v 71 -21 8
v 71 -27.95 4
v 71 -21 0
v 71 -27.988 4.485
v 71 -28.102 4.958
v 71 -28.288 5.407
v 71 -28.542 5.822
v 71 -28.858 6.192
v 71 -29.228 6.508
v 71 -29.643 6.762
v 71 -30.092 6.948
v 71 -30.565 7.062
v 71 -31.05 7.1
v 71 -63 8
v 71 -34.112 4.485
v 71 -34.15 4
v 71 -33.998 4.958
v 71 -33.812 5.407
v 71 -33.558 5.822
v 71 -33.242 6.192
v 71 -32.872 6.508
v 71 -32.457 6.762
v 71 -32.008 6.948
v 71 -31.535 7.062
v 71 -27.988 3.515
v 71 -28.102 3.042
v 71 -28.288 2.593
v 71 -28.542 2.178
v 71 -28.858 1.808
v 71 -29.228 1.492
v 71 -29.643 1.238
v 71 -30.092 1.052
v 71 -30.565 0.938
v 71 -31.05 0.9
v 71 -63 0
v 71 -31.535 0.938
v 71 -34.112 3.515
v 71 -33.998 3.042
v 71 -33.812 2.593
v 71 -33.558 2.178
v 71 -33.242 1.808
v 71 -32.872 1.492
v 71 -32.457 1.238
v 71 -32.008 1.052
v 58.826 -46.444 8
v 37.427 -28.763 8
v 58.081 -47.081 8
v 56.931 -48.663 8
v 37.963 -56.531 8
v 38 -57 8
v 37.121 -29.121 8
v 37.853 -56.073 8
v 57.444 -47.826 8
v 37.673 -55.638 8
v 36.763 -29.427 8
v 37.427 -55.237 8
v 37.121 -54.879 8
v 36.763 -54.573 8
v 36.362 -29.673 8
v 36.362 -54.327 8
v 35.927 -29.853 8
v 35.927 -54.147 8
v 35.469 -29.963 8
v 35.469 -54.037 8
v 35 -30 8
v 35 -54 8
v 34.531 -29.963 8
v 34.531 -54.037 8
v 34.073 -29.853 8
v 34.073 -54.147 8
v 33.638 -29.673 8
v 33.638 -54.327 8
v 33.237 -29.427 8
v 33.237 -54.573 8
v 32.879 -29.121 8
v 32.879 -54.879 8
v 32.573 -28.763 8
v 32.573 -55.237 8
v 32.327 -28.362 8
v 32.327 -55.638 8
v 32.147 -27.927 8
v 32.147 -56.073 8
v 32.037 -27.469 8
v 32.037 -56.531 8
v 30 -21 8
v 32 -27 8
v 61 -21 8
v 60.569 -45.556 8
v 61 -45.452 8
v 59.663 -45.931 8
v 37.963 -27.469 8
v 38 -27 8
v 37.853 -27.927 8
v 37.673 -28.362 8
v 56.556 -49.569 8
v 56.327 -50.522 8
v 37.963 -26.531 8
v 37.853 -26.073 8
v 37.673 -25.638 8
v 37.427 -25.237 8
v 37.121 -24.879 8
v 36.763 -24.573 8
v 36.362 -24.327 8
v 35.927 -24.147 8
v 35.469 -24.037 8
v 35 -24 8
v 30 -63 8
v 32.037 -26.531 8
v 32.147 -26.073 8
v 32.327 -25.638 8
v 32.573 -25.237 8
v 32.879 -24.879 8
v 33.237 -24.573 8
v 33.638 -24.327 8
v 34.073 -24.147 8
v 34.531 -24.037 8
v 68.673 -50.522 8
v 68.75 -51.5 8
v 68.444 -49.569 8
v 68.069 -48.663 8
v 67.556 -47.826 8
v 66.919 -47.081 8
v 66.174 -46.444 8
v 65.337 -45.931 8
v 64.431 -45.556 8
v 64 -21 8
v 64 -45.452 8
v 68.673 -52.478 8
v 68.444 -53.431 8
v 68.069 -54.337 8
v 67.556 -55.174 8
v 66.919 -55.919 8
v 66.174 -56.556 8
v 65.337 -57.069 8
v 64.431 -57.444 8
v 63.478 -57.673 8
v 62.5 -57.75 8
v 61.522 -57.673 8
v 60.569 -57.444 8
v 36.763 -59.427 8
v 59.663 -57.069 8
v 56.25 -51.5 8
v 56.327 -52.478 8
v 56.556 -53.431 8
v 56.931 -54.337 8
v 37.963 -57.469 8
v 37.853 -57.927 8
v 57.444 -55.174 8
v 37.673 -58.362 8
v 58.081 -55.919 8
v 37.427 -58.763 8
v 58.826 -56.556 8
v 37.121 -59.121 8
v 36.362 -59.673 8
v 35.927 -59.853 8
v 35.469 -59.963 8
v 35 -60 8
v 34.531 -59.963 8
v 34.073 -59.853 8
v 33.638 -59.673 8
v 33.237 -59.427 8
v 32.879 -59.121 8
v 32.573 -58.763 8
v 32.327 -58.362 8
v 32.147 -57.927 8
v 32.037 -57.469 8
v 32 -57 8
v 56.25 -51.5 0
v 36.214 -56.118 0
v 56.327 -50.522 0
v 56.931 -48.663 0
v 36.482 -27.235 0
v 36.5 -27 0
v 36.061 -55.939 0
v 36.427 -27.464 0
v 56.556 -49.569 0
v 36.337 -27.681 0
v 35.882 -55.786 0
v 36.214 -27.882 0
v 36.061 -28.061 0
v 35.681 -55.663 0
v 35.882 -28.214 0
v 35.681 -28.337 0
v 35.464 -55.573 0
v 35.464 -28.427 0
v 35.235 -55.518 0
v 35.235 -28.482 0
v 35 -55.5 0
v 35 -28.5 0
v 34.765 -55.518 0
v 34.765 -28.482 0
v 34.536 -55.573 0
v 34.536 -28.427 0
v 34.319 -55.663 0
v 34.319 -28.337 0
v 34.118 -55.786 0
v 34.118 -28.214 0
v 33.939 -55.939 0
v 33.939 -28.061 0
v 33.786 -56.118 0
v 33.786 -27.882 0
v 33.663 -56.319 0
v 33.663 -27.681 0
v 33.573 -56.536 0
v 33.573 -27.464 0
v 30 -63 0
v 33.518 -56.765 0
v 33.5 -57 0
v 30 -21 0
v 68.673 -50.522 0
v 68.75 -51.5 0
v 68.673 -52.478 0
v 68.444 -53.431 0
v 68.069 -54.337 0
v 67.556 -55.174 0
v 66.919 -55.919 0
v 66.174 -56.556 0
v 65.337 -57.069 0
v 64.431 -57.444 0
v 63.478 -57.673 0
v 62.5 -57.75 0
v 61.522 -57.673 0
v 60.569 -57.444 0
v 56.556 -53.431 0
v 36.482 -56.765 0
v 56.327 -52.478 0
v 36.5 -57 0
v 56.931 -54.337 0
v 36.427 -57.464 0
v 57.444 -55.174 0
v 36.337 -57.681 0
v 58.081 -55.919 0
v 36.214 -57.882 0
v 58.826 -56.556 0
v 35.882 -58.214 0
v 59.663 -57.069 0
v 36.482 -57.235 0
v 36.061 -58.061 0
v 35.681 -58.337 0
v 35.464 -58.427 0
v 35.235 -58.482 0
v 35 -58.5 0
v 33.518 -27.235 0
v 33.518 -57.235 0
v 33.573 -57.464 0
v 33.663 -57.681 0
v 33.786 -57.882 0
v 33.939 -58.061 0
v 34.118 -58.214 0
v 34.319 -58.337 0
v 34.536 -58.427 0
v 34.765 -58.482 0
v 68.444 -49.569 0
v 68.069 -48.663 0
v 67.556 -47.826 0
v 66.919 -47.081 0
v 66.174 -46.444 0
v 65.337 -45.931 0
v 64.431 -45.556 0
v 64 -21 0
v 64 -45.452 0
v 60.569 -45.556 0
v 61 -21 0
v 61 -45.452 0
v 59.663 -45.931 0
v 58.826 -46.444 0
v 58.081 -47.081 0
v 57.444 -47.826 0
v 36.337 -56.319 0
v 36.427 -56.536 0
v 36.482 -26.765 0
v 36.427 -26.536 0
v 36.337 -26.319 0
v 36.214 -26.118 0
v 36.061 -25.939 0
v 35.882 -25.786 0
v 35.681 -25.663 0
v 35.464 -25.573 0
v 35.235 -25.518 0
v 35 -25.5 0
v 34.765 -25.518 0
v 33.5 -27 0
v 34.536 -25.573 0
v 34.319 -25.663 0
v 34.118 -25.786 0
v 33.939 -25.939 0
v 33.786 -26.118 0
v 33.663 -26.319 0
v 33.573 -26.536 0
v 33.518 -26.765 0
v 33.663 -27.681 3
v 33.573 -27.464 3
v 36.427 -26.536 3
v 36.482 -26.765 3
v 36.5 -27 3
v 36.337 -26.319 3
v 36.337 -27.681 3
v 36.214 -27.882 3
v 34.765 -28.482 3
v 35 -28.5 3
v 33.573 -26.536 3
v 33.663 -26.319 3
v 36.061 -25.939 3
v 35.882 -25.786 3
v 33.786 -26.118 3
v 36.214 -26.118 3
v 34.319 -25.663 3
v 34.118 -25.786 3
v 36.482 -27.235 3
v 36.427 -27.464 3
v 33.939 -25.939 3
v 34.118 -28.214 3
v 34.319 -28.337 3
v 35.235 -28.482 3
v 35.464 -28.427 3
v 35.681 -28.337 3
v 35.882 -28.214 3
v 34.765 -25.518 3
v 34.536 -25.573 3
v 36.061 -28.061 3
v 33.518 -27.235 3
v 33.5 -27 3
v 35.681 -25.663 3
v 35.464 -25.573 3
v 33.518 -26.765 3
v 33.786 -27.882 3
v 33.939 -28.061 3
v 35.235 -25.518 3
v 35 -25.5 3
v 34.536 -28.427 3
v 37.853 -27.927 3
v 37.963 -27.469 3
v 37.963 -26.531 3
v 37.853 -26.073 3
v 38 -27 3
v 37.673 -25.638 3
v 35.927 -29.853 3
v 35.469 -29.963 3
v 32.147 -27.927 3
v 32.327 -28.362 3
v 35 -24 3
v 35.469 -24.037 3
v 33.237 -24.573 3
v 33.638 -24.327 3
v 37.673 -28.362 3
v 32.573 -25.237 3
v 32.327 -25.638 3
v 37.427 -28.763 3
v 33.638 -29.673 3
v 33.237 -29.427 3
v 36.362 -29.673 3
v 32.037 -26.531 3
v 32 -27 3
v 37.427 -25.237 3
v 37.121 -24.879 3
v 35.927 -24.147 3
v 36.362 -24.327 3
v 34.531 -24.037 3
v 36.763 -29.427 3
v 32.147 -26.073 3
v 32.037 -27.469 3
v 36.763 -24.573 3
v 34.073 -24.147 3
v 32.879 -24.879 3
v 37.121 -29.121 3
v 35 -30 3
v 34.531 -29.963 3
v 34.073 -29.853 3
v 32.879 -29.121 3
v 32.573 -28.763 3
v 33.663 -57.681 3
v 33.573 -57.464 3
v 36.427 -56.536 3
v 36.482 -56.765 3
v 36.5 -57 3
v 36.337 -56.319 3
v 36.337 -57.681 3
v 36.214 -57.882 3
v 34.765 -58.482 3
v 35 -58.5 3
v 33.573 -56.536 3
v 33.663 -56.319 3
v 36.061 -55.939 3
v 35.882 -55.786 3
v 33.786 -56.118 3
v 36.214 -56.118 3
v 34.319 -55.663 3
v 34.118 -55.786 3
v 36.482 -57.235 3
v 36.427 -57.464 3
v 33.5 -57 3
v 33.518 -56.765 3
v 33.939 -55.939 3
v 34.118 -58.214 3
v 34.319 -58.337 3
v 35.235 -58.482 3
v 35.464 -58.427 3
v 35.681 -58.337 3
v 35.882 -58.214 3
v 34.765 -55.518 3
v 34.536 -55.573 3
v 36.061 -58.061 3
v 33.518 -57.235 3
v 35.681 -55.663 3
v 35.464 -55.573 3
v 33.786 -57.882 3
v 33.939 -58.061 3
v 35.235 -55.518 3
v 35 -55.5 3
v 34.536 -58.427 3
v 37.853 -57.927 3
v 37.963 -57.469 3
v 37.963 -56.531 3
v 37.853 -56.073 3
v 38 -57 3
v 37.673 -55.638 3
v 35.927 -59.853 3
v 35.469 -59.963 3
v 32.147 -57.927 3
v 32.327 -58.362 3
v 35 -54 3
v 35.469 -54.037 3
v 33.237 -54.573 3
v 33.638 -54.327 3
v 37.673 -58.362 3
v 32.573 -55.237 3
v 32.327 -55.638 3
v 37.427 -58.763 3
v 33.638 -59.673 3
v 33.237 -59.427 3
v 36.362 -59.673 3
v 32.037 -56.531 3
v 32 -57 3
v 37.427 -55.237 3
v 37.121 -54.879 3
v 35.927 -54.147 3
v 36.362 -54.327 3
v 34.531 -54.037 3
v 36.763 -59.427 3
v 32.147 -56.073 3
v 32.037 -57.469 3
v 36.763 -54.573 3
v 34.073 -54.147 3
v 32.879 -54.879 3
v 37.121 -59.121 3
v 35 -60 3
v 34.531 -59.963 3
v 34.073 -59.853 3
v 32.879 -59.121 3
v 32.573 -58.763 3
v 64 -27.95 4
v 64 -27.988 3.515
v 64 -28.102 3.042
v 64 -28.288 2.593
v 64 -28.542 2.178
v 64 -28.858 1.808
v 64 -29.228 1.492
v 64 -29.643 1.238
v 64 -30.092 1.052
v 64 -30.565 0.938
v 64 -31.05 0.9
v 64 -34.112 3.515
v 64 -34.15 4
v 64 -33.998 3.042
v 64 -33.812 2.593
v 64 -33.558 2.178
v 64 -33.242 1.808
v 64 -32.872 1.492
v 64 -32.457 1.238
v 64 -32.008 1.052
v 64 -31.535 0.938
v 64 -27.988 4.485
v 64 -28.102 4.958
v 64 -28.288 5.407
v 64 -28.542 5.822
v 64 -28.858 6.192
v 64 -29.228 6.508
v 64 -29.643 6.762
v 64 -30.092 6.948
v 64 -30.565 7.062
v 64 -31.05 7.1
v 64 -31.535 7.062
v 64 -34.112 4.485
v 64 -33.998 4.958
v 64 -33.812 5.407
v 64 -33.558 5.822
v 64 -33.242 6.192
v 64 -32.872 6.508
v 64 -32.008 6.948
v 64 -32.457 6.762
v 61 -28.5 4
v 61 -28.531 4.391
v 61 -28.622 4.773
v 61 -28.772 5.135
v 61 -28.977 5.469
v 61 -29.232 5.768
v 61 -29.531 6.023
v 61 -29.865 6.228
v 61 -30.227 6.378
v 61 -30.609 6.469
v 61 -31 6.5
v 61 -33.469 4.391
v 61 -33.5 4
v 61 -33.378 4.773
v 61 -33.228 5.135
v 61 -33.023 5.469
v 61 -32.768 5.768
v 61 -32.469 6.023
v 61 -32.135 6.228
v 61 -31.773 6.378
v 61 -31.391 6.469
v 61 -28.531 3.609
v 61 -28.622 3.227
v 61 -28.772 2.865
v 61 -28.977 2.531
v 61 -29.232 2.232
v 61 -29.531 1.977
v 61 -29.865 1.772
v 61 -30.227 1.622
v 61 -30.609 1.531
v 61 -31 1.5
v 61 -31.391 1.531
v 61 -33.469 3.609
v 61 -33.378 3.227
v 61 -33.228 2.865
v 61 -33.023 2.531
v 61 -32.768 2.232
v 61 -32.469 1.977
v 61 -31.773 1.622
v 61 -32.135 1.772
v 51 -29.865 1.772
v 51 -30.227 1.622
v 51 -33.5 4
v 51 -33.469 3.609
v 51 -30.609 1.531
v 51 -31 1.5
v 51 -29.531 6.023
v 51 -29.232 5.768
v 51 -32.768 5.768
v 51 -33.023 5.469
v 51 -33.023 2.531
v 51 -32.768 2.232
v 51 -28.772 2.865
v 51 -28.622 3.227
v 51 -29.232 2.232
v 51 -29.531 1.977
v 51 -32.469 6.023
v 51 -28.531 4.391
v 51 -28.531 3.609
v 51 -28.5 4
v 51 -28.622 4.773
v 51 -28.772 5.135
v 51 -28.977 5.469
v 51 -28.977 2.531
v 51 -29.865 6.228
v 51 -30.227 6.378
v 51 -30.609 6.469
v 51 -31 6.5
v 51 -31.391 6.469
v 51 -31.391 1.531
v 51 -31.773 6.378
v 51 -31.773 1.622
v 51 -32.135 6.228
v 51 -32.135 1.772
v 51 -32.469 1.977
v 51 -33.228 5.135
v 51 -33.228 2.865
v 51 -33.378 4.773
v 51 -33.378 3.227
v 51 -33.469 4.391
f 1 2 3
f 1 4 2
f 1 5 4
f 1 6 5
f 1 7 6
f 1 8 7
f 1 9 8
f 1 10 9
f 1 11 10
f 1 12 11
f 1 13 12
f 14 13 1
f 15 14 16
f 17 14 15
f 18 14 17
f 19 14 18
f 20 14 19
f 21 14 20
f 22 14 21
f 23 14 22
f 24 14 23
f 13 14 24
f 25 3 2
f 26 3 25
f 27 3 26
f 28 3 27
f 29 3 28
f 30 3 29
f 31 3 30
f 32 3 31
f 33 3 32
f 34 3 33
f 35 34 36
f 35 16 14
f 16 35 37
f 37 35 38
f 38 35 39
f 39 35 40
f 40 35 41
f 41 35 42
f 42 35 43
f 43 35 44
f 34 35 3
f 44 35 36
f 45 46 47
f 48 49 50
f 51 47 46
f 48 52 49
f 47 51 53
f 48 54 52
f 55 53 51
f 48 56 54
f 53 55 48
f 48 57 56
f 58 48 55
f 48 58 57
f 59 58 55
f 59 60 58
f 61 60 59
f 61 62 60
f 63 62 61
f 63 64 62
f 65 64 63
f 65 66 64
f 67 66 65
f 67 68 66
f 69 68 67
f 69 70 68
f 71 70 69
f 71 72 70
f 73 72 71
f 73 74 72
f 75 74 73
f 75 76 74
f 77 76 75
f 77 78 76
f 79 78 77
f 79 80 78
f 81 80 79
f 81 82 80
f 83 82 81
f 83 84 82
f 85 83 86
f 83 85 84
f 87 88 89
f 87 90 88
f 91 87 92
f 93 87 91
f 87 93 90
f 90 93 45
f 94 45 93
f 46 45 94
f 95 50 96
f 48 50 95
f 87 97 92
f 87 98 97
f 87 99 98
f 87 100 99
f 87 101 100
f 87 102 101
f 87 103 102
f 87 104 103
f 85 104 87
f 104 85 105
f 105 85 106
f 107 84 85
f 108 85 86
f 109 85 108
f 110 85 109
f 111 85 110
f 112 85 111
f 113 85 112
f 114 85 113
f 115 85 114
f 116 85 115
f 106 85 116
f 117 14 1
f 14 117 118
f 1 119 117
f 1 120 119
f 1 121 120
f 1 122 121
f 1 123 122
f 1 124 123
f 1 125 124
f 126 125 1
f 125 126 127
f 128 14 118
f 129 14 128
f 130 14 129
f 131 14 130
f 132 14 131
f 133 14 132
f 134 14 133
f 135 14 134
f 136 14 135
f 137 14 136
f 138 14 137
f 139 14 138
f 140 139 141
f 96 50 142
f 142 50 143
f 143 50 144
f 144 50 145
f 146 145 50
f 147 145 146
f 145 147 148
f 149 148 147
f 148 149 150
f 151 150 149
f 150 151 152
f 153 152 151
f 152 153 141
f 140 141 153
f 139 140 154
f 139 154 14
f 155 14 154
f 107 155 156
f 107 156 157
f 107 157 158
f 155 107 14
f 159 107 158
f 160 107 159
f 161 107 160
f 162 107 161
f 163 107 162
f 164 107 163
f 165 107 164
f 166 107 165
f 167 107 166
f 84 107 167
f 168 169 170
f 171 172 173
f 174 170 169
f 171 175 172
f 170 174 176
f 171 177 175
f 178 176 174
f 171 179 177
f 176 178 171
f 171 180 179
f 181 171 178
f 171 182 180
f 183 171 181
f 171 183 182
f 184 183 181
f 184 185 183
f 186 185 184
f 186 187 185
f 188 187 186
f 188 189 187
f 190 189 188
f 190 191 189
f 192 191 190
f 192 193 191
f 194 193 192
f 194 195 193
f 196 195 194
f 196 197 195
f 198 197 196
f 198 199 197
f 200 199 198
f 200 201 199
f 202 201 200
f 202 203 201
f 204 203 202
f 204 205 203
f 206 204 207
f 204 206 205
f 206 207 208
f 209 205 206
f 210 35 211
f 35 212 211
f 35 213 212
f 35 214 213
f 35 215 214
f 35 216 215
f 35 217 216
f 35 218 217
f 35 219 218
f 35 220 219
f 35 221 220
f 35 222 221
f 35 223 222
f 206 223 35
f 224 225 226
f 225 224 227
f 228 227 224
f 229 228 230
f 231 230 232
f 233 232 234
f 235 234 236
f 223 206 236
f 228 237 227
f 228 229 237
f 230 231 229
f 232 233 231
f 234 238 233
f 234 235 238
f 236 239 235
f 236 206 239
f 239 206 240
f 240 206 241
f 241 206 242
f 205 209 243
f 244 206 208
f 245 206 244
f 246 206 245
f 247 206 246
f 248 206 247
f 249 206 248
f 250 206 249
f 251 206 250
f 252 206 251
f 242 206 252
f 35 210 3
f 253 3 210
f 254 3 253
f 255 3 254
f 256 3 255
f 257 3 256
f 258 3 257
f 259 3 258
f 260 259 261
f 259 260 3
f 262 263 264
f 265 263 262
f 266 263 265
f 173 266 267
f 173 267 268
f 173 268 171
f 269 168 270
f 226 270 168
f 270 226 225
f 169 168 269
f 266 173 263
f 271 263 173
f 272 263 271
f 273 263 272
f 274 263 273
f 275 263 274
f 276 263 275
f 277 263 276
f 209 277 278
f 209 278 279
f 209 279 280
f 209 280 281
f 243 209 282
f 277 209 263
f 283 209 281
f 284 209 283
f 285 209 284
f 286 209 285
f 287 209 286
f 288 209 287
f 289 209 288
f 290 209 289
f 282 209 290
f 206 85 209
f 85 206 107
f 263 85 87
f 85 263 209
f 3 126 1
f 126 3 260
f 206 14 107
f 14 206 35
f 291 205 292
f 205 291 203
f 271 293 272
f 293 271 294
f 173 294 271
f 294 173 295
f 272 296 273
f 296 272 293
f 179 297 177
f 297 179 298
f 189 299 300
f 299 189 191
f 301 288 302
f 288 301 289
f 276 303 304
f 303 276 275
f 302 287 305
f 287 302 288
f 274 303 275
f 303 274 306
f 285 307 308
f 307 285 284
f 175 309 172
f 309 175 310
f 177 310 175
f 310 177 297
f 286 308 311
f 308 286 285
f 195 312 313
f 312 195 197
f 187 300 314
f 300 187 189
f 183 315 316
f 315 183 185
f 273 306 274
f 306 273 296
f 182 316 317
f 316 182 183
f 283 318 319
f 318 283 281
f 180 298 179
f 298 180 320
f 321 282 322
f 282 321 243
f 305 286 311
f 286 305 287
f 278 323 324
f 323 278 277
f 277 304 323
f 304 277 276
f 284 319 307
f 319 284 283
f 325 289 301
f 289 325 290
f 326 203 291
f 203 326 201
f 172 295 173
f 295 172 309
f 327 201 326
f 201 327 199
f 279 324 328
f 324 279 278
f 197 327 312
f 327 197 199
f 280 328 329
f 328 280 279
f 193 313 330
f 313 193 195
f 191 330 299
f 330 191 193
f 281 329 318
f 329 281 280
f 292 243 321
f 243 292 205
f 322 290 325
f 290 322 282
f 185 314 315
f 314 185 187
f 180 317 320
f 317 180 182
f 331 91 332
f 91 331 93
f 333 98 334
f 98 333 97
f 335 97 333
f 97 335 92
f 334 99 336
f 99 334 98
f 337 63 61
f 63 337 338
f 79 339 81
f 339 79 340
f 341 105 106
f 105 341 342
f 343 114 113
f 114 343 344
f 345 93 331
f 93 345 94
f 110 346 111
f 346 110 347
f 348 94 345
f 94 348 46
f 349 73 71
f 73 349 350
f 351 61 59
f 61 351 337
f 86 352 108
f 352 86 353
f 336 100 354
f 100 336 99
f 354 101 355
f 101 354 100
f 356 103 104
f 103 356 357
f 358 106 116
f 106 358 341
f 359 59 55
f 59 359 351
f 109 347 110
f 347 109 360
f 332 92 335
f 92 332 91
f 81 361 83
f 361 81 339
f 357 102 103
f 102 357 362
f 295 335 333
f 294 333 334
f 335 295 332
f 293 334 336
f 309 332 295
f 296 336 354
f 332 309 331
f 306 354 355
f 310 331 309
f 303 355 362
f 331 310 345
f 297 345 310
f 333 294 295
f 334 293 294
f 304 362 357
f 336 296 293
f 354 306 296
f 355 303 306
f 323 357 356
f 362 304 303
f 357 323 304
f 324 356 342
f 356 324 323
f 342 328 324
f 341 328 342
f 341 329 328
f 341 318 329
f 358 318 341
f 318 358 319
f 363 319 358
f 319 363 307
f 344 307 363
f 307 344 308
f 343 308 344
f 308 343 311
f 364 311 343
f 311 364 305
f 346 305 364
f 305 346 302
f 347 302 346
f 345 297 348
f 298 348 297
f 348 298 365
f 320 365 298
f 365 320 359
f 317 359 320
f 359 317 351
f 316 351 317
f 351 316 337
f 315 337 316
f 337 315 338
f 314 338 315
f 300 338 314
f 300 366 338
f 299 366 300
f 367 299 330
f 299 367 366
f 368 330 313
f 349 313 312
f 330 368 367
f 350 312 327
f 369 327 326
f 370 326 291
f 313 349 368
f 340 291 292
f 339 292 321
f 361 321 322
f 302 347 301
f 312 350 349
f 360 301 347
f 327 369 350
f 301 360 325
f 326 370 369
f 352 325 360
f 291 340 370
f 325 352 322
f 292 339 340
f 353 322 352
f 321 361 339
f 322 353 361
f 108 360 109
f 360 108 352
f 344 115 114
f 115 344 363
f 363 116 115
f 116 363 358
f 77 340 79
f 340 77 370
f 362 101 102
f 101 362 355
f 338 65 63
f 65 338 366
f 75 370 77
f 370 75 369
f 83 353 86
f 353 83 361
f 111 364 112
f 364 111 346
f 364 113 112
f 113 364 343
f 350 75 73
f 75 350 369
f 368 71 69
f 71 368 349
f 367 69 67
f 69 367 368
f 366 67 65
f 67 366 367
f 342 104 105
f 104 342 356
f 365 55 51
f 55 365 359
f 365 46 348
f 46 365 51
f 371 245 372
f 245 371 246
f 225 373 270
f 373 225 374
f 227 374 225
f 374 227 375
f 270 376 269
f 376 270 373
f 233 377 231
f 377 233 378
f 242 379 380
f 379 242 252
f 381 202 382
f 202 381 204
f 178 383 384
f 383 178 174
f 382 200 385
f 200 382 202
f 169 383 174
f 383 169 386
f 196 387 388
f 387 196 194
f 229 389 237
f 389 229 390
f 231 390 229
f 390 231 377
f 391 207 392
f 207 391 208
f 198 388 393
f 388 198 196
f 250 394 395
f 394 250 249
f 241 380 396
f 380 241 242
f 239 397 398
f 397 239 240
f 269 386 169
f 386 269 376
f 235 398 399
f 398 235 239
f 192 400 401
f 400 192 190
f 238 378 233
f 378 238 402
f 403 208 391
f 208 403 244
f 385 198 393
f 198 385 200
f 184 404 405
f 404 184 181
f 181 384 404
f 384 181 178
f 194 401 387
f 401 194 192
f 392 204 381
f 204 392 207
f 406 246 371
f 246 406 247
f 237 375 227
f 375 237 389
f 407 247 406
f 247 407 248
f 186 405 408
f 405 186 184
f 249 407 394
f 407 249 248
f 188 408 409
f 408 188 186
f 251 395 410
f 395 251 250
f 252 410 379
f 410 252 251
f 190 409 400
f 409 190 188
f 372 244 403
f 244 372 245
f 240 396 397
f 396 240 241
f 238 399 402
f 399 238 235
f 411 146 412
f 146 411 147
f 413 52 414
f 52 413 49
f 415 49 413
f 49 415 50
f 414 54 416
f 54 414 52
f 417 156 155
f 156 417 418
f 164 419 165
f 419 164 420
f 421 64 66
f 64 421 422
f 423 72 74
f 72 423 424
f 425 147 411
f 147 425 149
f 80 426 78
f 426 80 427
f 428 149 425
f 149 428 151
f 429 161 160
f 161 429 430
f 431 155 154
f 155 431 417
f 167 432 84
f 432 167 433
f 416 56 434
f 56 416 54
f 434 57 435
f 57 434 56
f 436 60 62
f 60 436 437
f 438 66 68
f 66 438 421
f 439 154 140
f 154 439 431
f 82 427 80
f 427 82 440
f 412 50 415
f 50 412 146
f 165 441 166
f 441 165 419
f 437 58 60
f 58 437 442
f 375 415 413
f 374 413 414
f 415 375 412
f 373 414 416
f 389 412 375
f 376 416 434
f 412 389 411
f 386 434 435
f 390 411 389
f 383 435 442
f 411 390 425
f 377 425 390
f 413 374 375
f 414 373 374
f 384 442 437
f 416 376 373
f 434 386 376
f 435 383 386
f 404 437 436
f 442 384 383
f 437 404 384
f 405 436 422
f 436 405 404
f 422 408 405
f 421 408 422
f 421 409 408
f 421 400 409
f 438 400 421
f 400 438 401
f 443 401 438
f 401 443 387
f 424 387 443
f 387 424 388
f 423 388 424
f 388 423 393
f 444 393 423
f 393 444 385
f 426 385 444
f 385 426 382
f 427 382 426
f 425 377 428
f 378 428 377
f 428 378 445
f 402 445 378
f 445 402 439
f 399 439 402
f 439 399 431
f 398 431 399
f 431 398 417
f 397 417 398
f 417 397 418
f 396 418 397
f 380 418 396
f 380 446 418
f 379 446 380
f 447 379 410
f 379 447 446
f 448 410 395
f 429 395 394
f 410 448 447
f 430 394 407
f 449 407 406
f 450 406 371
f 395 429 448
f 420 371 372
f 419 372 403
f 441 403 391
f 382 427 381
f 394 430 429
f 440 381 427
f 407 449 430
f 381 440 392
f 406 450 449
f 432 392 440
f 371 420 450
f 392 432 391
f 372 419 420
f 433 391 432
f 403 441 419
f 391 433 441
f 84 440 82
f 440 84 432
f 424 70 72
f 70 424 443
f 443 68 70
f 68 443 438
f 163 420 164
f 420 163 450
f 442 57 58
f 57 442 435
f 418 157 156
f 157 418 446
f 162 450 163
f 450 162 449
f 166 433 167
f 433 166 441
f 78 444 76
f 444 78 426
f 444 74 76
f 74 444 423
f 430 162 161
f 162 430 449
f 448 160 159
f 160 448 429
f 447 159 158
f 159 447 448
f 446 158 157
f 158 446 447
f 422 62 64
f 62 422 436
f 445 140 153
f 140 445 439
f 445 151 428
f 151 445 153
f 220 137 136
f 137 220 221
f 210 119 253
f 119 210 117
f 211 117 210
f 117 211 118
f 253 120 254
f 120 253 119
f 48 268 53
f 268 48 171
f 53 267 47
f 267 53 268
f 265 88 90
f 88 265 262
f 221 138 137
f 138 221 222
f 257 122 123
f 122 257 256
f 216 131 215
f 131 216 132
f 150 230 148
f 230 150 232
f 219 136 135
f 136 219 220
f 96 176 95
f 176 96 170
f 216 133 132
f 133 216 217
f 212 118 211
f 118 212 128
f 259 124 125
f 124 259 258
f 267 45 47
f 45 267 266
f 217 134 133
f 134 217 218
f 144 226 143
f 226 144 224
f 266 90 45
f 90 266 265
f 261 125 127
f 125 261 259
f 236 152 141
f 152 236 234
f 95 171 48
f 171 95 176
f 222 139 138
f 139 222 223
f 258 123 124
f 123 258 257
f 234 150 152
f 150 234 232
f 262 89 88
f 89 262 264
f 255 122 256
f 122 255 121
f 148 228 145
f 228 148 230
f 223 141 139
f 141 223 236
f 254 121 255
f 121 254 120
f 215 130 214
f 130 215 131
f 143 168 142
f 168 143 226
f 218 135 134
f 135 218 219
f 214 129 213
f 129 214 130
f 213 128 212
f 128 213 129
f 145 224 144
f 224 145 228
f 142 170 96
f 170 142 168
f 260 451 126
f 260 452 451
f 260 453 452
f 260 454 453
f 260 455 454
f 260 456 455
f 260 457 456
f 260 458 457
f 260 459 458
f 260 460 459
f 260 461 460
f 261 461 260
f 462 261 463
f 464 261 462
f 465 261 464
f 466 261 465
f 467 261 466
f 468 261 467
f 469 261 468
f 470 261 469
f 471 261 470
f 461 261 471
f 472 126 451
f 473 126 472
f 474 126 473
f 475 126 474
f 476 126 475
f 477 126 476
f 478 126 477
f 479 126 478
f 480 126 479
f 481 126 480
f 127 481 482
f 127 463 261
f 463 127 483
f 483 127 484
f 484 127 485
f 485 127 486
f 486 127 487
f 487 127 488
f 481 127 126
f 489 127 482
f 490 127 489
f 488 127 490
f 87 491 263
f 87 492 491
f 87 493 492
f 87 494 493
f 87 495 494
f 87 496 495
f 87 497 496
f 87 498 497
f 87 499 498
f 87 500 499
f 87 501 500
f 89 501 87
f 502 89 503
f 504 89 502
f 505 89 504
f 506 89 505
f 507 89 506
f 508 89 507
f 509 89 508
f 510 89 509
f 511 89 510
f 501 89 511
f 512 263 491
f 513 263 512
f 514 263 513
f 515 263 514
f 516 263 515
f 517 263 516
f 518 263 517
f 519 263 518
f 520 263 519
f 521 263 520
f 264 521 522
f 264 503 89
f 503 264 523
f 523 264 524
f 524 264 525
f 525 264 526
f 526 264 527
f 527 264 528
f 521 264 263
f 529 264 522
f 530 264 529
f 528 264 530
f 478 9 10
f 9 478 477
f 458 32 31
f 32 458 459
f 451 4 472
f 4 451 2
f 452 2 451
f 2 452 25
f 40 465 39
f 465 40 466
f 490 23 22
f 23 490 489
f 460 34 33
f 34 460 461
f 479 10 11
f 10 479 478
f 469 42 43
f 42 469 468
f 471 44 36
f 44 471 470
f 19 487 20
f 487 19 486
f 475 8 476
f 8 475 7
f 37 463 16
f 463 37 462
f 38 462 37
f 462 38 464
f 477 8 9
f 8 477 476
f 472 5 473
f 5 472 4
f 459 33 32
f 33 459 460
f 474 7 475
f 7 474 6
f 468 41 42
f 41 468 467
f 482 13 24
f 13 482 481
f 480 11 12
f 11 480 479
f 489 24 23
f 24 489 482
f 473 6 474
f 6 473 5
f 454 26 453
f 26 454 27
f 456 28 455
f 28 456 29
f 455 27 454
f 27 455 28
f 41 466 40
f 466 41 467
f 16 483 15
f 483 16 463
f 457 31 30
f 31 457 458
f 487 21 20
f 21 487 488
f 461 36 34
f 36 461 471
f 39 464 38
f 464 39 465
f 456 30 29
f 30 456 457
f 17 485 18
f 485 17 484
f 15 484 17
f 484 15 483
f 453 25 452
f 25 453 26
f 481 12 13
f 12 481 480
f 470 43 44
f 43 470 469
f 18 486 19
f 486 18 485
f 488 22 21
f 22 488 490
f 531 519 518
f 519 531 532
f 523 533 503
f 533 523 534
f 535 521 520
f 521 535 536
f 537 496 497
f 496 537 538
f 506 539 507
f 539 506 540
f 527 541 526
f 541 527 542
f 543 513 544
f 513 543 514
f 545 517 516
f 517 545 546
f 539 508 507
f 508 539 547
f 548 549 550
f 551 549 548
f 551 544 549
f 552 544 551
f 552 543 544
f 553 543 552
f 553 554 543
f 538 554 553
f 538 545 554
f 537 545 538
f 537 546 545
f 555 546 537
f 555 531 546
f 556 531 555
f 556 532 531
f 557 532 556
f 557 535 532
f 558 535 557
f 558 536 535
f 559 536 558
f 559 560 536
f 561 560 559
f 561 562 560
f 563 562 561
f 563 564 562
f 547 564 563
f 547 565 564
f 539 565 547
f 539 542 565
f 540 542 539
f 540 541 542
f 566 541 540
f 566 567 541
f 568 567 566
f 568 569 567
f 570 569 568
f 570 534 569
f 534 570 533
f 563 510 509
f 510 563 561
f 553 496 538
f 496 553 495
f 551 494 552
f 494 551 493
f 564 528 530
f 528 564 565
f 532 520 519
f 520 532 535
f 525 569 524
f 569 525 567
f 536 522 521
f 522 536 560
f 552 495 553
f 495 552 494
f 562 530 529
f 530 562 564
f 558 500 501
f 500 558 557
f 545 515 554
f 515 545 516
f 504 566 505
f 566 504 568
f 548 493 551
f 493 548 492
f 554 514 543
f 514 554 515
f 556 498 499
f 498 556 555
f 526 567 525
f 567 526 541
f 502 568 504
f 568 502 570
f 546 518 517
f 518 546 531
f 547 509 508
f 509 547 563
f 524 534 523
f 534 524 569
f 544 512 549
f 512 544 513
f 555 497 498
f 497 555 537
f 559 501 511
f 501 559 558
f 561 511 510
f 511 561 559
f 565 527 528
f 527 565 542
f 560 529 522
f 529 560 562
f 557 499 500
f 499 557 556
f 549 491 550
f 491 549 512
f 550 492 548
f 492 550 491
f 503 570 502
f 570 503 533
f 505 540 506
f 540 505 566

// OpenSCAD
plate_1_translate = [0, 0, 8];
plate_2_translate = [90, 0, 0];
// plate_3_translate = [0, 0, 0];
plate_3_translate = [-60, -60, -8];
circle_facets = 40;
clamp_hole_size = 6.25;  // Measured at 6, but we lose about .5mm from PETG bleed.
hex_nut_size = 3.45;  // Measured at 6.35 tip-to-tip (5.56 across), but we lose slightly more than .5mm from PETG bleed.


translate(plate_2_translate) rotate([0, 0, 0]) difference() {
    union() {
        // Upper square part of plate
        translate(plate_3_translate) translate([0, -3, 8]) cube([41, 42, 8]);
    }
    
    // ---- Screw holes between parts ----
    
    // Screw hole #4 (through hole between parts)
    translate(plate_3_translate) translate([5, 33, -10]) cylinder(h = 100, r = 1.5, $fn = circle_facets);
    
    // Screw hole #4 (head bore between parts)
    translate(plate_3_translate) translate([5, 33, 11]) cylinder(h = 5.01, r = 3, $fn = circle_facets);

    // Screw hole #5 (through hole between parts)
    translate(plate_3_translate) translate([5, 3, -10]) cylinder(h = 100, r = 1.5, $fn = circle_facets);
    
    // Screw hole #5 (head bore between parts)
    translate(plate_3_translate) translate([5, 3, 11]) cylinder(h = 5.01, r = 3, $fn = circle_facets);

    // ---- Clamp holes ----

    // Clamp (post) hole
    translate(plate_3_translate) translate([32.5, 8.5, -10]) cylinder(h = 100, r = clamp_hole_size, $fn = circle_facets);
    
    // Clamp gap
    translate(plate_3_translate) translate([31, 13.5, -1]) cube([3, 31, 18]);
    
    // Clamp screw hole M6 (unthreaded, 6.1mm)
    translate(plate_3_translate) translate([32.5, 28.95, 12]) rotate([0,90,0]) cylinder(h = 100, r = 3.1, $fn = circle_facets);

    // Clamp screw hole M6 (threaded, 5mm)
    translate(plate_3_translate) translate([21, 29, 12]) rotate([0,90,0]) cylinder(h = 100, r = 2.5, $fn = circle_facets);
    
    // Encoder details:
    // Body is 38mm wide (measured), 39mm per spec.
    // Raised ring around shaft is 20mm wide.
    // Shaft is 6mm across.
    // Three holes in body at equal intervals on a 30mm circle.
    // Uses 3mm screws.
    // Edge is 2.5mm in from edge of body.
    // 
};
